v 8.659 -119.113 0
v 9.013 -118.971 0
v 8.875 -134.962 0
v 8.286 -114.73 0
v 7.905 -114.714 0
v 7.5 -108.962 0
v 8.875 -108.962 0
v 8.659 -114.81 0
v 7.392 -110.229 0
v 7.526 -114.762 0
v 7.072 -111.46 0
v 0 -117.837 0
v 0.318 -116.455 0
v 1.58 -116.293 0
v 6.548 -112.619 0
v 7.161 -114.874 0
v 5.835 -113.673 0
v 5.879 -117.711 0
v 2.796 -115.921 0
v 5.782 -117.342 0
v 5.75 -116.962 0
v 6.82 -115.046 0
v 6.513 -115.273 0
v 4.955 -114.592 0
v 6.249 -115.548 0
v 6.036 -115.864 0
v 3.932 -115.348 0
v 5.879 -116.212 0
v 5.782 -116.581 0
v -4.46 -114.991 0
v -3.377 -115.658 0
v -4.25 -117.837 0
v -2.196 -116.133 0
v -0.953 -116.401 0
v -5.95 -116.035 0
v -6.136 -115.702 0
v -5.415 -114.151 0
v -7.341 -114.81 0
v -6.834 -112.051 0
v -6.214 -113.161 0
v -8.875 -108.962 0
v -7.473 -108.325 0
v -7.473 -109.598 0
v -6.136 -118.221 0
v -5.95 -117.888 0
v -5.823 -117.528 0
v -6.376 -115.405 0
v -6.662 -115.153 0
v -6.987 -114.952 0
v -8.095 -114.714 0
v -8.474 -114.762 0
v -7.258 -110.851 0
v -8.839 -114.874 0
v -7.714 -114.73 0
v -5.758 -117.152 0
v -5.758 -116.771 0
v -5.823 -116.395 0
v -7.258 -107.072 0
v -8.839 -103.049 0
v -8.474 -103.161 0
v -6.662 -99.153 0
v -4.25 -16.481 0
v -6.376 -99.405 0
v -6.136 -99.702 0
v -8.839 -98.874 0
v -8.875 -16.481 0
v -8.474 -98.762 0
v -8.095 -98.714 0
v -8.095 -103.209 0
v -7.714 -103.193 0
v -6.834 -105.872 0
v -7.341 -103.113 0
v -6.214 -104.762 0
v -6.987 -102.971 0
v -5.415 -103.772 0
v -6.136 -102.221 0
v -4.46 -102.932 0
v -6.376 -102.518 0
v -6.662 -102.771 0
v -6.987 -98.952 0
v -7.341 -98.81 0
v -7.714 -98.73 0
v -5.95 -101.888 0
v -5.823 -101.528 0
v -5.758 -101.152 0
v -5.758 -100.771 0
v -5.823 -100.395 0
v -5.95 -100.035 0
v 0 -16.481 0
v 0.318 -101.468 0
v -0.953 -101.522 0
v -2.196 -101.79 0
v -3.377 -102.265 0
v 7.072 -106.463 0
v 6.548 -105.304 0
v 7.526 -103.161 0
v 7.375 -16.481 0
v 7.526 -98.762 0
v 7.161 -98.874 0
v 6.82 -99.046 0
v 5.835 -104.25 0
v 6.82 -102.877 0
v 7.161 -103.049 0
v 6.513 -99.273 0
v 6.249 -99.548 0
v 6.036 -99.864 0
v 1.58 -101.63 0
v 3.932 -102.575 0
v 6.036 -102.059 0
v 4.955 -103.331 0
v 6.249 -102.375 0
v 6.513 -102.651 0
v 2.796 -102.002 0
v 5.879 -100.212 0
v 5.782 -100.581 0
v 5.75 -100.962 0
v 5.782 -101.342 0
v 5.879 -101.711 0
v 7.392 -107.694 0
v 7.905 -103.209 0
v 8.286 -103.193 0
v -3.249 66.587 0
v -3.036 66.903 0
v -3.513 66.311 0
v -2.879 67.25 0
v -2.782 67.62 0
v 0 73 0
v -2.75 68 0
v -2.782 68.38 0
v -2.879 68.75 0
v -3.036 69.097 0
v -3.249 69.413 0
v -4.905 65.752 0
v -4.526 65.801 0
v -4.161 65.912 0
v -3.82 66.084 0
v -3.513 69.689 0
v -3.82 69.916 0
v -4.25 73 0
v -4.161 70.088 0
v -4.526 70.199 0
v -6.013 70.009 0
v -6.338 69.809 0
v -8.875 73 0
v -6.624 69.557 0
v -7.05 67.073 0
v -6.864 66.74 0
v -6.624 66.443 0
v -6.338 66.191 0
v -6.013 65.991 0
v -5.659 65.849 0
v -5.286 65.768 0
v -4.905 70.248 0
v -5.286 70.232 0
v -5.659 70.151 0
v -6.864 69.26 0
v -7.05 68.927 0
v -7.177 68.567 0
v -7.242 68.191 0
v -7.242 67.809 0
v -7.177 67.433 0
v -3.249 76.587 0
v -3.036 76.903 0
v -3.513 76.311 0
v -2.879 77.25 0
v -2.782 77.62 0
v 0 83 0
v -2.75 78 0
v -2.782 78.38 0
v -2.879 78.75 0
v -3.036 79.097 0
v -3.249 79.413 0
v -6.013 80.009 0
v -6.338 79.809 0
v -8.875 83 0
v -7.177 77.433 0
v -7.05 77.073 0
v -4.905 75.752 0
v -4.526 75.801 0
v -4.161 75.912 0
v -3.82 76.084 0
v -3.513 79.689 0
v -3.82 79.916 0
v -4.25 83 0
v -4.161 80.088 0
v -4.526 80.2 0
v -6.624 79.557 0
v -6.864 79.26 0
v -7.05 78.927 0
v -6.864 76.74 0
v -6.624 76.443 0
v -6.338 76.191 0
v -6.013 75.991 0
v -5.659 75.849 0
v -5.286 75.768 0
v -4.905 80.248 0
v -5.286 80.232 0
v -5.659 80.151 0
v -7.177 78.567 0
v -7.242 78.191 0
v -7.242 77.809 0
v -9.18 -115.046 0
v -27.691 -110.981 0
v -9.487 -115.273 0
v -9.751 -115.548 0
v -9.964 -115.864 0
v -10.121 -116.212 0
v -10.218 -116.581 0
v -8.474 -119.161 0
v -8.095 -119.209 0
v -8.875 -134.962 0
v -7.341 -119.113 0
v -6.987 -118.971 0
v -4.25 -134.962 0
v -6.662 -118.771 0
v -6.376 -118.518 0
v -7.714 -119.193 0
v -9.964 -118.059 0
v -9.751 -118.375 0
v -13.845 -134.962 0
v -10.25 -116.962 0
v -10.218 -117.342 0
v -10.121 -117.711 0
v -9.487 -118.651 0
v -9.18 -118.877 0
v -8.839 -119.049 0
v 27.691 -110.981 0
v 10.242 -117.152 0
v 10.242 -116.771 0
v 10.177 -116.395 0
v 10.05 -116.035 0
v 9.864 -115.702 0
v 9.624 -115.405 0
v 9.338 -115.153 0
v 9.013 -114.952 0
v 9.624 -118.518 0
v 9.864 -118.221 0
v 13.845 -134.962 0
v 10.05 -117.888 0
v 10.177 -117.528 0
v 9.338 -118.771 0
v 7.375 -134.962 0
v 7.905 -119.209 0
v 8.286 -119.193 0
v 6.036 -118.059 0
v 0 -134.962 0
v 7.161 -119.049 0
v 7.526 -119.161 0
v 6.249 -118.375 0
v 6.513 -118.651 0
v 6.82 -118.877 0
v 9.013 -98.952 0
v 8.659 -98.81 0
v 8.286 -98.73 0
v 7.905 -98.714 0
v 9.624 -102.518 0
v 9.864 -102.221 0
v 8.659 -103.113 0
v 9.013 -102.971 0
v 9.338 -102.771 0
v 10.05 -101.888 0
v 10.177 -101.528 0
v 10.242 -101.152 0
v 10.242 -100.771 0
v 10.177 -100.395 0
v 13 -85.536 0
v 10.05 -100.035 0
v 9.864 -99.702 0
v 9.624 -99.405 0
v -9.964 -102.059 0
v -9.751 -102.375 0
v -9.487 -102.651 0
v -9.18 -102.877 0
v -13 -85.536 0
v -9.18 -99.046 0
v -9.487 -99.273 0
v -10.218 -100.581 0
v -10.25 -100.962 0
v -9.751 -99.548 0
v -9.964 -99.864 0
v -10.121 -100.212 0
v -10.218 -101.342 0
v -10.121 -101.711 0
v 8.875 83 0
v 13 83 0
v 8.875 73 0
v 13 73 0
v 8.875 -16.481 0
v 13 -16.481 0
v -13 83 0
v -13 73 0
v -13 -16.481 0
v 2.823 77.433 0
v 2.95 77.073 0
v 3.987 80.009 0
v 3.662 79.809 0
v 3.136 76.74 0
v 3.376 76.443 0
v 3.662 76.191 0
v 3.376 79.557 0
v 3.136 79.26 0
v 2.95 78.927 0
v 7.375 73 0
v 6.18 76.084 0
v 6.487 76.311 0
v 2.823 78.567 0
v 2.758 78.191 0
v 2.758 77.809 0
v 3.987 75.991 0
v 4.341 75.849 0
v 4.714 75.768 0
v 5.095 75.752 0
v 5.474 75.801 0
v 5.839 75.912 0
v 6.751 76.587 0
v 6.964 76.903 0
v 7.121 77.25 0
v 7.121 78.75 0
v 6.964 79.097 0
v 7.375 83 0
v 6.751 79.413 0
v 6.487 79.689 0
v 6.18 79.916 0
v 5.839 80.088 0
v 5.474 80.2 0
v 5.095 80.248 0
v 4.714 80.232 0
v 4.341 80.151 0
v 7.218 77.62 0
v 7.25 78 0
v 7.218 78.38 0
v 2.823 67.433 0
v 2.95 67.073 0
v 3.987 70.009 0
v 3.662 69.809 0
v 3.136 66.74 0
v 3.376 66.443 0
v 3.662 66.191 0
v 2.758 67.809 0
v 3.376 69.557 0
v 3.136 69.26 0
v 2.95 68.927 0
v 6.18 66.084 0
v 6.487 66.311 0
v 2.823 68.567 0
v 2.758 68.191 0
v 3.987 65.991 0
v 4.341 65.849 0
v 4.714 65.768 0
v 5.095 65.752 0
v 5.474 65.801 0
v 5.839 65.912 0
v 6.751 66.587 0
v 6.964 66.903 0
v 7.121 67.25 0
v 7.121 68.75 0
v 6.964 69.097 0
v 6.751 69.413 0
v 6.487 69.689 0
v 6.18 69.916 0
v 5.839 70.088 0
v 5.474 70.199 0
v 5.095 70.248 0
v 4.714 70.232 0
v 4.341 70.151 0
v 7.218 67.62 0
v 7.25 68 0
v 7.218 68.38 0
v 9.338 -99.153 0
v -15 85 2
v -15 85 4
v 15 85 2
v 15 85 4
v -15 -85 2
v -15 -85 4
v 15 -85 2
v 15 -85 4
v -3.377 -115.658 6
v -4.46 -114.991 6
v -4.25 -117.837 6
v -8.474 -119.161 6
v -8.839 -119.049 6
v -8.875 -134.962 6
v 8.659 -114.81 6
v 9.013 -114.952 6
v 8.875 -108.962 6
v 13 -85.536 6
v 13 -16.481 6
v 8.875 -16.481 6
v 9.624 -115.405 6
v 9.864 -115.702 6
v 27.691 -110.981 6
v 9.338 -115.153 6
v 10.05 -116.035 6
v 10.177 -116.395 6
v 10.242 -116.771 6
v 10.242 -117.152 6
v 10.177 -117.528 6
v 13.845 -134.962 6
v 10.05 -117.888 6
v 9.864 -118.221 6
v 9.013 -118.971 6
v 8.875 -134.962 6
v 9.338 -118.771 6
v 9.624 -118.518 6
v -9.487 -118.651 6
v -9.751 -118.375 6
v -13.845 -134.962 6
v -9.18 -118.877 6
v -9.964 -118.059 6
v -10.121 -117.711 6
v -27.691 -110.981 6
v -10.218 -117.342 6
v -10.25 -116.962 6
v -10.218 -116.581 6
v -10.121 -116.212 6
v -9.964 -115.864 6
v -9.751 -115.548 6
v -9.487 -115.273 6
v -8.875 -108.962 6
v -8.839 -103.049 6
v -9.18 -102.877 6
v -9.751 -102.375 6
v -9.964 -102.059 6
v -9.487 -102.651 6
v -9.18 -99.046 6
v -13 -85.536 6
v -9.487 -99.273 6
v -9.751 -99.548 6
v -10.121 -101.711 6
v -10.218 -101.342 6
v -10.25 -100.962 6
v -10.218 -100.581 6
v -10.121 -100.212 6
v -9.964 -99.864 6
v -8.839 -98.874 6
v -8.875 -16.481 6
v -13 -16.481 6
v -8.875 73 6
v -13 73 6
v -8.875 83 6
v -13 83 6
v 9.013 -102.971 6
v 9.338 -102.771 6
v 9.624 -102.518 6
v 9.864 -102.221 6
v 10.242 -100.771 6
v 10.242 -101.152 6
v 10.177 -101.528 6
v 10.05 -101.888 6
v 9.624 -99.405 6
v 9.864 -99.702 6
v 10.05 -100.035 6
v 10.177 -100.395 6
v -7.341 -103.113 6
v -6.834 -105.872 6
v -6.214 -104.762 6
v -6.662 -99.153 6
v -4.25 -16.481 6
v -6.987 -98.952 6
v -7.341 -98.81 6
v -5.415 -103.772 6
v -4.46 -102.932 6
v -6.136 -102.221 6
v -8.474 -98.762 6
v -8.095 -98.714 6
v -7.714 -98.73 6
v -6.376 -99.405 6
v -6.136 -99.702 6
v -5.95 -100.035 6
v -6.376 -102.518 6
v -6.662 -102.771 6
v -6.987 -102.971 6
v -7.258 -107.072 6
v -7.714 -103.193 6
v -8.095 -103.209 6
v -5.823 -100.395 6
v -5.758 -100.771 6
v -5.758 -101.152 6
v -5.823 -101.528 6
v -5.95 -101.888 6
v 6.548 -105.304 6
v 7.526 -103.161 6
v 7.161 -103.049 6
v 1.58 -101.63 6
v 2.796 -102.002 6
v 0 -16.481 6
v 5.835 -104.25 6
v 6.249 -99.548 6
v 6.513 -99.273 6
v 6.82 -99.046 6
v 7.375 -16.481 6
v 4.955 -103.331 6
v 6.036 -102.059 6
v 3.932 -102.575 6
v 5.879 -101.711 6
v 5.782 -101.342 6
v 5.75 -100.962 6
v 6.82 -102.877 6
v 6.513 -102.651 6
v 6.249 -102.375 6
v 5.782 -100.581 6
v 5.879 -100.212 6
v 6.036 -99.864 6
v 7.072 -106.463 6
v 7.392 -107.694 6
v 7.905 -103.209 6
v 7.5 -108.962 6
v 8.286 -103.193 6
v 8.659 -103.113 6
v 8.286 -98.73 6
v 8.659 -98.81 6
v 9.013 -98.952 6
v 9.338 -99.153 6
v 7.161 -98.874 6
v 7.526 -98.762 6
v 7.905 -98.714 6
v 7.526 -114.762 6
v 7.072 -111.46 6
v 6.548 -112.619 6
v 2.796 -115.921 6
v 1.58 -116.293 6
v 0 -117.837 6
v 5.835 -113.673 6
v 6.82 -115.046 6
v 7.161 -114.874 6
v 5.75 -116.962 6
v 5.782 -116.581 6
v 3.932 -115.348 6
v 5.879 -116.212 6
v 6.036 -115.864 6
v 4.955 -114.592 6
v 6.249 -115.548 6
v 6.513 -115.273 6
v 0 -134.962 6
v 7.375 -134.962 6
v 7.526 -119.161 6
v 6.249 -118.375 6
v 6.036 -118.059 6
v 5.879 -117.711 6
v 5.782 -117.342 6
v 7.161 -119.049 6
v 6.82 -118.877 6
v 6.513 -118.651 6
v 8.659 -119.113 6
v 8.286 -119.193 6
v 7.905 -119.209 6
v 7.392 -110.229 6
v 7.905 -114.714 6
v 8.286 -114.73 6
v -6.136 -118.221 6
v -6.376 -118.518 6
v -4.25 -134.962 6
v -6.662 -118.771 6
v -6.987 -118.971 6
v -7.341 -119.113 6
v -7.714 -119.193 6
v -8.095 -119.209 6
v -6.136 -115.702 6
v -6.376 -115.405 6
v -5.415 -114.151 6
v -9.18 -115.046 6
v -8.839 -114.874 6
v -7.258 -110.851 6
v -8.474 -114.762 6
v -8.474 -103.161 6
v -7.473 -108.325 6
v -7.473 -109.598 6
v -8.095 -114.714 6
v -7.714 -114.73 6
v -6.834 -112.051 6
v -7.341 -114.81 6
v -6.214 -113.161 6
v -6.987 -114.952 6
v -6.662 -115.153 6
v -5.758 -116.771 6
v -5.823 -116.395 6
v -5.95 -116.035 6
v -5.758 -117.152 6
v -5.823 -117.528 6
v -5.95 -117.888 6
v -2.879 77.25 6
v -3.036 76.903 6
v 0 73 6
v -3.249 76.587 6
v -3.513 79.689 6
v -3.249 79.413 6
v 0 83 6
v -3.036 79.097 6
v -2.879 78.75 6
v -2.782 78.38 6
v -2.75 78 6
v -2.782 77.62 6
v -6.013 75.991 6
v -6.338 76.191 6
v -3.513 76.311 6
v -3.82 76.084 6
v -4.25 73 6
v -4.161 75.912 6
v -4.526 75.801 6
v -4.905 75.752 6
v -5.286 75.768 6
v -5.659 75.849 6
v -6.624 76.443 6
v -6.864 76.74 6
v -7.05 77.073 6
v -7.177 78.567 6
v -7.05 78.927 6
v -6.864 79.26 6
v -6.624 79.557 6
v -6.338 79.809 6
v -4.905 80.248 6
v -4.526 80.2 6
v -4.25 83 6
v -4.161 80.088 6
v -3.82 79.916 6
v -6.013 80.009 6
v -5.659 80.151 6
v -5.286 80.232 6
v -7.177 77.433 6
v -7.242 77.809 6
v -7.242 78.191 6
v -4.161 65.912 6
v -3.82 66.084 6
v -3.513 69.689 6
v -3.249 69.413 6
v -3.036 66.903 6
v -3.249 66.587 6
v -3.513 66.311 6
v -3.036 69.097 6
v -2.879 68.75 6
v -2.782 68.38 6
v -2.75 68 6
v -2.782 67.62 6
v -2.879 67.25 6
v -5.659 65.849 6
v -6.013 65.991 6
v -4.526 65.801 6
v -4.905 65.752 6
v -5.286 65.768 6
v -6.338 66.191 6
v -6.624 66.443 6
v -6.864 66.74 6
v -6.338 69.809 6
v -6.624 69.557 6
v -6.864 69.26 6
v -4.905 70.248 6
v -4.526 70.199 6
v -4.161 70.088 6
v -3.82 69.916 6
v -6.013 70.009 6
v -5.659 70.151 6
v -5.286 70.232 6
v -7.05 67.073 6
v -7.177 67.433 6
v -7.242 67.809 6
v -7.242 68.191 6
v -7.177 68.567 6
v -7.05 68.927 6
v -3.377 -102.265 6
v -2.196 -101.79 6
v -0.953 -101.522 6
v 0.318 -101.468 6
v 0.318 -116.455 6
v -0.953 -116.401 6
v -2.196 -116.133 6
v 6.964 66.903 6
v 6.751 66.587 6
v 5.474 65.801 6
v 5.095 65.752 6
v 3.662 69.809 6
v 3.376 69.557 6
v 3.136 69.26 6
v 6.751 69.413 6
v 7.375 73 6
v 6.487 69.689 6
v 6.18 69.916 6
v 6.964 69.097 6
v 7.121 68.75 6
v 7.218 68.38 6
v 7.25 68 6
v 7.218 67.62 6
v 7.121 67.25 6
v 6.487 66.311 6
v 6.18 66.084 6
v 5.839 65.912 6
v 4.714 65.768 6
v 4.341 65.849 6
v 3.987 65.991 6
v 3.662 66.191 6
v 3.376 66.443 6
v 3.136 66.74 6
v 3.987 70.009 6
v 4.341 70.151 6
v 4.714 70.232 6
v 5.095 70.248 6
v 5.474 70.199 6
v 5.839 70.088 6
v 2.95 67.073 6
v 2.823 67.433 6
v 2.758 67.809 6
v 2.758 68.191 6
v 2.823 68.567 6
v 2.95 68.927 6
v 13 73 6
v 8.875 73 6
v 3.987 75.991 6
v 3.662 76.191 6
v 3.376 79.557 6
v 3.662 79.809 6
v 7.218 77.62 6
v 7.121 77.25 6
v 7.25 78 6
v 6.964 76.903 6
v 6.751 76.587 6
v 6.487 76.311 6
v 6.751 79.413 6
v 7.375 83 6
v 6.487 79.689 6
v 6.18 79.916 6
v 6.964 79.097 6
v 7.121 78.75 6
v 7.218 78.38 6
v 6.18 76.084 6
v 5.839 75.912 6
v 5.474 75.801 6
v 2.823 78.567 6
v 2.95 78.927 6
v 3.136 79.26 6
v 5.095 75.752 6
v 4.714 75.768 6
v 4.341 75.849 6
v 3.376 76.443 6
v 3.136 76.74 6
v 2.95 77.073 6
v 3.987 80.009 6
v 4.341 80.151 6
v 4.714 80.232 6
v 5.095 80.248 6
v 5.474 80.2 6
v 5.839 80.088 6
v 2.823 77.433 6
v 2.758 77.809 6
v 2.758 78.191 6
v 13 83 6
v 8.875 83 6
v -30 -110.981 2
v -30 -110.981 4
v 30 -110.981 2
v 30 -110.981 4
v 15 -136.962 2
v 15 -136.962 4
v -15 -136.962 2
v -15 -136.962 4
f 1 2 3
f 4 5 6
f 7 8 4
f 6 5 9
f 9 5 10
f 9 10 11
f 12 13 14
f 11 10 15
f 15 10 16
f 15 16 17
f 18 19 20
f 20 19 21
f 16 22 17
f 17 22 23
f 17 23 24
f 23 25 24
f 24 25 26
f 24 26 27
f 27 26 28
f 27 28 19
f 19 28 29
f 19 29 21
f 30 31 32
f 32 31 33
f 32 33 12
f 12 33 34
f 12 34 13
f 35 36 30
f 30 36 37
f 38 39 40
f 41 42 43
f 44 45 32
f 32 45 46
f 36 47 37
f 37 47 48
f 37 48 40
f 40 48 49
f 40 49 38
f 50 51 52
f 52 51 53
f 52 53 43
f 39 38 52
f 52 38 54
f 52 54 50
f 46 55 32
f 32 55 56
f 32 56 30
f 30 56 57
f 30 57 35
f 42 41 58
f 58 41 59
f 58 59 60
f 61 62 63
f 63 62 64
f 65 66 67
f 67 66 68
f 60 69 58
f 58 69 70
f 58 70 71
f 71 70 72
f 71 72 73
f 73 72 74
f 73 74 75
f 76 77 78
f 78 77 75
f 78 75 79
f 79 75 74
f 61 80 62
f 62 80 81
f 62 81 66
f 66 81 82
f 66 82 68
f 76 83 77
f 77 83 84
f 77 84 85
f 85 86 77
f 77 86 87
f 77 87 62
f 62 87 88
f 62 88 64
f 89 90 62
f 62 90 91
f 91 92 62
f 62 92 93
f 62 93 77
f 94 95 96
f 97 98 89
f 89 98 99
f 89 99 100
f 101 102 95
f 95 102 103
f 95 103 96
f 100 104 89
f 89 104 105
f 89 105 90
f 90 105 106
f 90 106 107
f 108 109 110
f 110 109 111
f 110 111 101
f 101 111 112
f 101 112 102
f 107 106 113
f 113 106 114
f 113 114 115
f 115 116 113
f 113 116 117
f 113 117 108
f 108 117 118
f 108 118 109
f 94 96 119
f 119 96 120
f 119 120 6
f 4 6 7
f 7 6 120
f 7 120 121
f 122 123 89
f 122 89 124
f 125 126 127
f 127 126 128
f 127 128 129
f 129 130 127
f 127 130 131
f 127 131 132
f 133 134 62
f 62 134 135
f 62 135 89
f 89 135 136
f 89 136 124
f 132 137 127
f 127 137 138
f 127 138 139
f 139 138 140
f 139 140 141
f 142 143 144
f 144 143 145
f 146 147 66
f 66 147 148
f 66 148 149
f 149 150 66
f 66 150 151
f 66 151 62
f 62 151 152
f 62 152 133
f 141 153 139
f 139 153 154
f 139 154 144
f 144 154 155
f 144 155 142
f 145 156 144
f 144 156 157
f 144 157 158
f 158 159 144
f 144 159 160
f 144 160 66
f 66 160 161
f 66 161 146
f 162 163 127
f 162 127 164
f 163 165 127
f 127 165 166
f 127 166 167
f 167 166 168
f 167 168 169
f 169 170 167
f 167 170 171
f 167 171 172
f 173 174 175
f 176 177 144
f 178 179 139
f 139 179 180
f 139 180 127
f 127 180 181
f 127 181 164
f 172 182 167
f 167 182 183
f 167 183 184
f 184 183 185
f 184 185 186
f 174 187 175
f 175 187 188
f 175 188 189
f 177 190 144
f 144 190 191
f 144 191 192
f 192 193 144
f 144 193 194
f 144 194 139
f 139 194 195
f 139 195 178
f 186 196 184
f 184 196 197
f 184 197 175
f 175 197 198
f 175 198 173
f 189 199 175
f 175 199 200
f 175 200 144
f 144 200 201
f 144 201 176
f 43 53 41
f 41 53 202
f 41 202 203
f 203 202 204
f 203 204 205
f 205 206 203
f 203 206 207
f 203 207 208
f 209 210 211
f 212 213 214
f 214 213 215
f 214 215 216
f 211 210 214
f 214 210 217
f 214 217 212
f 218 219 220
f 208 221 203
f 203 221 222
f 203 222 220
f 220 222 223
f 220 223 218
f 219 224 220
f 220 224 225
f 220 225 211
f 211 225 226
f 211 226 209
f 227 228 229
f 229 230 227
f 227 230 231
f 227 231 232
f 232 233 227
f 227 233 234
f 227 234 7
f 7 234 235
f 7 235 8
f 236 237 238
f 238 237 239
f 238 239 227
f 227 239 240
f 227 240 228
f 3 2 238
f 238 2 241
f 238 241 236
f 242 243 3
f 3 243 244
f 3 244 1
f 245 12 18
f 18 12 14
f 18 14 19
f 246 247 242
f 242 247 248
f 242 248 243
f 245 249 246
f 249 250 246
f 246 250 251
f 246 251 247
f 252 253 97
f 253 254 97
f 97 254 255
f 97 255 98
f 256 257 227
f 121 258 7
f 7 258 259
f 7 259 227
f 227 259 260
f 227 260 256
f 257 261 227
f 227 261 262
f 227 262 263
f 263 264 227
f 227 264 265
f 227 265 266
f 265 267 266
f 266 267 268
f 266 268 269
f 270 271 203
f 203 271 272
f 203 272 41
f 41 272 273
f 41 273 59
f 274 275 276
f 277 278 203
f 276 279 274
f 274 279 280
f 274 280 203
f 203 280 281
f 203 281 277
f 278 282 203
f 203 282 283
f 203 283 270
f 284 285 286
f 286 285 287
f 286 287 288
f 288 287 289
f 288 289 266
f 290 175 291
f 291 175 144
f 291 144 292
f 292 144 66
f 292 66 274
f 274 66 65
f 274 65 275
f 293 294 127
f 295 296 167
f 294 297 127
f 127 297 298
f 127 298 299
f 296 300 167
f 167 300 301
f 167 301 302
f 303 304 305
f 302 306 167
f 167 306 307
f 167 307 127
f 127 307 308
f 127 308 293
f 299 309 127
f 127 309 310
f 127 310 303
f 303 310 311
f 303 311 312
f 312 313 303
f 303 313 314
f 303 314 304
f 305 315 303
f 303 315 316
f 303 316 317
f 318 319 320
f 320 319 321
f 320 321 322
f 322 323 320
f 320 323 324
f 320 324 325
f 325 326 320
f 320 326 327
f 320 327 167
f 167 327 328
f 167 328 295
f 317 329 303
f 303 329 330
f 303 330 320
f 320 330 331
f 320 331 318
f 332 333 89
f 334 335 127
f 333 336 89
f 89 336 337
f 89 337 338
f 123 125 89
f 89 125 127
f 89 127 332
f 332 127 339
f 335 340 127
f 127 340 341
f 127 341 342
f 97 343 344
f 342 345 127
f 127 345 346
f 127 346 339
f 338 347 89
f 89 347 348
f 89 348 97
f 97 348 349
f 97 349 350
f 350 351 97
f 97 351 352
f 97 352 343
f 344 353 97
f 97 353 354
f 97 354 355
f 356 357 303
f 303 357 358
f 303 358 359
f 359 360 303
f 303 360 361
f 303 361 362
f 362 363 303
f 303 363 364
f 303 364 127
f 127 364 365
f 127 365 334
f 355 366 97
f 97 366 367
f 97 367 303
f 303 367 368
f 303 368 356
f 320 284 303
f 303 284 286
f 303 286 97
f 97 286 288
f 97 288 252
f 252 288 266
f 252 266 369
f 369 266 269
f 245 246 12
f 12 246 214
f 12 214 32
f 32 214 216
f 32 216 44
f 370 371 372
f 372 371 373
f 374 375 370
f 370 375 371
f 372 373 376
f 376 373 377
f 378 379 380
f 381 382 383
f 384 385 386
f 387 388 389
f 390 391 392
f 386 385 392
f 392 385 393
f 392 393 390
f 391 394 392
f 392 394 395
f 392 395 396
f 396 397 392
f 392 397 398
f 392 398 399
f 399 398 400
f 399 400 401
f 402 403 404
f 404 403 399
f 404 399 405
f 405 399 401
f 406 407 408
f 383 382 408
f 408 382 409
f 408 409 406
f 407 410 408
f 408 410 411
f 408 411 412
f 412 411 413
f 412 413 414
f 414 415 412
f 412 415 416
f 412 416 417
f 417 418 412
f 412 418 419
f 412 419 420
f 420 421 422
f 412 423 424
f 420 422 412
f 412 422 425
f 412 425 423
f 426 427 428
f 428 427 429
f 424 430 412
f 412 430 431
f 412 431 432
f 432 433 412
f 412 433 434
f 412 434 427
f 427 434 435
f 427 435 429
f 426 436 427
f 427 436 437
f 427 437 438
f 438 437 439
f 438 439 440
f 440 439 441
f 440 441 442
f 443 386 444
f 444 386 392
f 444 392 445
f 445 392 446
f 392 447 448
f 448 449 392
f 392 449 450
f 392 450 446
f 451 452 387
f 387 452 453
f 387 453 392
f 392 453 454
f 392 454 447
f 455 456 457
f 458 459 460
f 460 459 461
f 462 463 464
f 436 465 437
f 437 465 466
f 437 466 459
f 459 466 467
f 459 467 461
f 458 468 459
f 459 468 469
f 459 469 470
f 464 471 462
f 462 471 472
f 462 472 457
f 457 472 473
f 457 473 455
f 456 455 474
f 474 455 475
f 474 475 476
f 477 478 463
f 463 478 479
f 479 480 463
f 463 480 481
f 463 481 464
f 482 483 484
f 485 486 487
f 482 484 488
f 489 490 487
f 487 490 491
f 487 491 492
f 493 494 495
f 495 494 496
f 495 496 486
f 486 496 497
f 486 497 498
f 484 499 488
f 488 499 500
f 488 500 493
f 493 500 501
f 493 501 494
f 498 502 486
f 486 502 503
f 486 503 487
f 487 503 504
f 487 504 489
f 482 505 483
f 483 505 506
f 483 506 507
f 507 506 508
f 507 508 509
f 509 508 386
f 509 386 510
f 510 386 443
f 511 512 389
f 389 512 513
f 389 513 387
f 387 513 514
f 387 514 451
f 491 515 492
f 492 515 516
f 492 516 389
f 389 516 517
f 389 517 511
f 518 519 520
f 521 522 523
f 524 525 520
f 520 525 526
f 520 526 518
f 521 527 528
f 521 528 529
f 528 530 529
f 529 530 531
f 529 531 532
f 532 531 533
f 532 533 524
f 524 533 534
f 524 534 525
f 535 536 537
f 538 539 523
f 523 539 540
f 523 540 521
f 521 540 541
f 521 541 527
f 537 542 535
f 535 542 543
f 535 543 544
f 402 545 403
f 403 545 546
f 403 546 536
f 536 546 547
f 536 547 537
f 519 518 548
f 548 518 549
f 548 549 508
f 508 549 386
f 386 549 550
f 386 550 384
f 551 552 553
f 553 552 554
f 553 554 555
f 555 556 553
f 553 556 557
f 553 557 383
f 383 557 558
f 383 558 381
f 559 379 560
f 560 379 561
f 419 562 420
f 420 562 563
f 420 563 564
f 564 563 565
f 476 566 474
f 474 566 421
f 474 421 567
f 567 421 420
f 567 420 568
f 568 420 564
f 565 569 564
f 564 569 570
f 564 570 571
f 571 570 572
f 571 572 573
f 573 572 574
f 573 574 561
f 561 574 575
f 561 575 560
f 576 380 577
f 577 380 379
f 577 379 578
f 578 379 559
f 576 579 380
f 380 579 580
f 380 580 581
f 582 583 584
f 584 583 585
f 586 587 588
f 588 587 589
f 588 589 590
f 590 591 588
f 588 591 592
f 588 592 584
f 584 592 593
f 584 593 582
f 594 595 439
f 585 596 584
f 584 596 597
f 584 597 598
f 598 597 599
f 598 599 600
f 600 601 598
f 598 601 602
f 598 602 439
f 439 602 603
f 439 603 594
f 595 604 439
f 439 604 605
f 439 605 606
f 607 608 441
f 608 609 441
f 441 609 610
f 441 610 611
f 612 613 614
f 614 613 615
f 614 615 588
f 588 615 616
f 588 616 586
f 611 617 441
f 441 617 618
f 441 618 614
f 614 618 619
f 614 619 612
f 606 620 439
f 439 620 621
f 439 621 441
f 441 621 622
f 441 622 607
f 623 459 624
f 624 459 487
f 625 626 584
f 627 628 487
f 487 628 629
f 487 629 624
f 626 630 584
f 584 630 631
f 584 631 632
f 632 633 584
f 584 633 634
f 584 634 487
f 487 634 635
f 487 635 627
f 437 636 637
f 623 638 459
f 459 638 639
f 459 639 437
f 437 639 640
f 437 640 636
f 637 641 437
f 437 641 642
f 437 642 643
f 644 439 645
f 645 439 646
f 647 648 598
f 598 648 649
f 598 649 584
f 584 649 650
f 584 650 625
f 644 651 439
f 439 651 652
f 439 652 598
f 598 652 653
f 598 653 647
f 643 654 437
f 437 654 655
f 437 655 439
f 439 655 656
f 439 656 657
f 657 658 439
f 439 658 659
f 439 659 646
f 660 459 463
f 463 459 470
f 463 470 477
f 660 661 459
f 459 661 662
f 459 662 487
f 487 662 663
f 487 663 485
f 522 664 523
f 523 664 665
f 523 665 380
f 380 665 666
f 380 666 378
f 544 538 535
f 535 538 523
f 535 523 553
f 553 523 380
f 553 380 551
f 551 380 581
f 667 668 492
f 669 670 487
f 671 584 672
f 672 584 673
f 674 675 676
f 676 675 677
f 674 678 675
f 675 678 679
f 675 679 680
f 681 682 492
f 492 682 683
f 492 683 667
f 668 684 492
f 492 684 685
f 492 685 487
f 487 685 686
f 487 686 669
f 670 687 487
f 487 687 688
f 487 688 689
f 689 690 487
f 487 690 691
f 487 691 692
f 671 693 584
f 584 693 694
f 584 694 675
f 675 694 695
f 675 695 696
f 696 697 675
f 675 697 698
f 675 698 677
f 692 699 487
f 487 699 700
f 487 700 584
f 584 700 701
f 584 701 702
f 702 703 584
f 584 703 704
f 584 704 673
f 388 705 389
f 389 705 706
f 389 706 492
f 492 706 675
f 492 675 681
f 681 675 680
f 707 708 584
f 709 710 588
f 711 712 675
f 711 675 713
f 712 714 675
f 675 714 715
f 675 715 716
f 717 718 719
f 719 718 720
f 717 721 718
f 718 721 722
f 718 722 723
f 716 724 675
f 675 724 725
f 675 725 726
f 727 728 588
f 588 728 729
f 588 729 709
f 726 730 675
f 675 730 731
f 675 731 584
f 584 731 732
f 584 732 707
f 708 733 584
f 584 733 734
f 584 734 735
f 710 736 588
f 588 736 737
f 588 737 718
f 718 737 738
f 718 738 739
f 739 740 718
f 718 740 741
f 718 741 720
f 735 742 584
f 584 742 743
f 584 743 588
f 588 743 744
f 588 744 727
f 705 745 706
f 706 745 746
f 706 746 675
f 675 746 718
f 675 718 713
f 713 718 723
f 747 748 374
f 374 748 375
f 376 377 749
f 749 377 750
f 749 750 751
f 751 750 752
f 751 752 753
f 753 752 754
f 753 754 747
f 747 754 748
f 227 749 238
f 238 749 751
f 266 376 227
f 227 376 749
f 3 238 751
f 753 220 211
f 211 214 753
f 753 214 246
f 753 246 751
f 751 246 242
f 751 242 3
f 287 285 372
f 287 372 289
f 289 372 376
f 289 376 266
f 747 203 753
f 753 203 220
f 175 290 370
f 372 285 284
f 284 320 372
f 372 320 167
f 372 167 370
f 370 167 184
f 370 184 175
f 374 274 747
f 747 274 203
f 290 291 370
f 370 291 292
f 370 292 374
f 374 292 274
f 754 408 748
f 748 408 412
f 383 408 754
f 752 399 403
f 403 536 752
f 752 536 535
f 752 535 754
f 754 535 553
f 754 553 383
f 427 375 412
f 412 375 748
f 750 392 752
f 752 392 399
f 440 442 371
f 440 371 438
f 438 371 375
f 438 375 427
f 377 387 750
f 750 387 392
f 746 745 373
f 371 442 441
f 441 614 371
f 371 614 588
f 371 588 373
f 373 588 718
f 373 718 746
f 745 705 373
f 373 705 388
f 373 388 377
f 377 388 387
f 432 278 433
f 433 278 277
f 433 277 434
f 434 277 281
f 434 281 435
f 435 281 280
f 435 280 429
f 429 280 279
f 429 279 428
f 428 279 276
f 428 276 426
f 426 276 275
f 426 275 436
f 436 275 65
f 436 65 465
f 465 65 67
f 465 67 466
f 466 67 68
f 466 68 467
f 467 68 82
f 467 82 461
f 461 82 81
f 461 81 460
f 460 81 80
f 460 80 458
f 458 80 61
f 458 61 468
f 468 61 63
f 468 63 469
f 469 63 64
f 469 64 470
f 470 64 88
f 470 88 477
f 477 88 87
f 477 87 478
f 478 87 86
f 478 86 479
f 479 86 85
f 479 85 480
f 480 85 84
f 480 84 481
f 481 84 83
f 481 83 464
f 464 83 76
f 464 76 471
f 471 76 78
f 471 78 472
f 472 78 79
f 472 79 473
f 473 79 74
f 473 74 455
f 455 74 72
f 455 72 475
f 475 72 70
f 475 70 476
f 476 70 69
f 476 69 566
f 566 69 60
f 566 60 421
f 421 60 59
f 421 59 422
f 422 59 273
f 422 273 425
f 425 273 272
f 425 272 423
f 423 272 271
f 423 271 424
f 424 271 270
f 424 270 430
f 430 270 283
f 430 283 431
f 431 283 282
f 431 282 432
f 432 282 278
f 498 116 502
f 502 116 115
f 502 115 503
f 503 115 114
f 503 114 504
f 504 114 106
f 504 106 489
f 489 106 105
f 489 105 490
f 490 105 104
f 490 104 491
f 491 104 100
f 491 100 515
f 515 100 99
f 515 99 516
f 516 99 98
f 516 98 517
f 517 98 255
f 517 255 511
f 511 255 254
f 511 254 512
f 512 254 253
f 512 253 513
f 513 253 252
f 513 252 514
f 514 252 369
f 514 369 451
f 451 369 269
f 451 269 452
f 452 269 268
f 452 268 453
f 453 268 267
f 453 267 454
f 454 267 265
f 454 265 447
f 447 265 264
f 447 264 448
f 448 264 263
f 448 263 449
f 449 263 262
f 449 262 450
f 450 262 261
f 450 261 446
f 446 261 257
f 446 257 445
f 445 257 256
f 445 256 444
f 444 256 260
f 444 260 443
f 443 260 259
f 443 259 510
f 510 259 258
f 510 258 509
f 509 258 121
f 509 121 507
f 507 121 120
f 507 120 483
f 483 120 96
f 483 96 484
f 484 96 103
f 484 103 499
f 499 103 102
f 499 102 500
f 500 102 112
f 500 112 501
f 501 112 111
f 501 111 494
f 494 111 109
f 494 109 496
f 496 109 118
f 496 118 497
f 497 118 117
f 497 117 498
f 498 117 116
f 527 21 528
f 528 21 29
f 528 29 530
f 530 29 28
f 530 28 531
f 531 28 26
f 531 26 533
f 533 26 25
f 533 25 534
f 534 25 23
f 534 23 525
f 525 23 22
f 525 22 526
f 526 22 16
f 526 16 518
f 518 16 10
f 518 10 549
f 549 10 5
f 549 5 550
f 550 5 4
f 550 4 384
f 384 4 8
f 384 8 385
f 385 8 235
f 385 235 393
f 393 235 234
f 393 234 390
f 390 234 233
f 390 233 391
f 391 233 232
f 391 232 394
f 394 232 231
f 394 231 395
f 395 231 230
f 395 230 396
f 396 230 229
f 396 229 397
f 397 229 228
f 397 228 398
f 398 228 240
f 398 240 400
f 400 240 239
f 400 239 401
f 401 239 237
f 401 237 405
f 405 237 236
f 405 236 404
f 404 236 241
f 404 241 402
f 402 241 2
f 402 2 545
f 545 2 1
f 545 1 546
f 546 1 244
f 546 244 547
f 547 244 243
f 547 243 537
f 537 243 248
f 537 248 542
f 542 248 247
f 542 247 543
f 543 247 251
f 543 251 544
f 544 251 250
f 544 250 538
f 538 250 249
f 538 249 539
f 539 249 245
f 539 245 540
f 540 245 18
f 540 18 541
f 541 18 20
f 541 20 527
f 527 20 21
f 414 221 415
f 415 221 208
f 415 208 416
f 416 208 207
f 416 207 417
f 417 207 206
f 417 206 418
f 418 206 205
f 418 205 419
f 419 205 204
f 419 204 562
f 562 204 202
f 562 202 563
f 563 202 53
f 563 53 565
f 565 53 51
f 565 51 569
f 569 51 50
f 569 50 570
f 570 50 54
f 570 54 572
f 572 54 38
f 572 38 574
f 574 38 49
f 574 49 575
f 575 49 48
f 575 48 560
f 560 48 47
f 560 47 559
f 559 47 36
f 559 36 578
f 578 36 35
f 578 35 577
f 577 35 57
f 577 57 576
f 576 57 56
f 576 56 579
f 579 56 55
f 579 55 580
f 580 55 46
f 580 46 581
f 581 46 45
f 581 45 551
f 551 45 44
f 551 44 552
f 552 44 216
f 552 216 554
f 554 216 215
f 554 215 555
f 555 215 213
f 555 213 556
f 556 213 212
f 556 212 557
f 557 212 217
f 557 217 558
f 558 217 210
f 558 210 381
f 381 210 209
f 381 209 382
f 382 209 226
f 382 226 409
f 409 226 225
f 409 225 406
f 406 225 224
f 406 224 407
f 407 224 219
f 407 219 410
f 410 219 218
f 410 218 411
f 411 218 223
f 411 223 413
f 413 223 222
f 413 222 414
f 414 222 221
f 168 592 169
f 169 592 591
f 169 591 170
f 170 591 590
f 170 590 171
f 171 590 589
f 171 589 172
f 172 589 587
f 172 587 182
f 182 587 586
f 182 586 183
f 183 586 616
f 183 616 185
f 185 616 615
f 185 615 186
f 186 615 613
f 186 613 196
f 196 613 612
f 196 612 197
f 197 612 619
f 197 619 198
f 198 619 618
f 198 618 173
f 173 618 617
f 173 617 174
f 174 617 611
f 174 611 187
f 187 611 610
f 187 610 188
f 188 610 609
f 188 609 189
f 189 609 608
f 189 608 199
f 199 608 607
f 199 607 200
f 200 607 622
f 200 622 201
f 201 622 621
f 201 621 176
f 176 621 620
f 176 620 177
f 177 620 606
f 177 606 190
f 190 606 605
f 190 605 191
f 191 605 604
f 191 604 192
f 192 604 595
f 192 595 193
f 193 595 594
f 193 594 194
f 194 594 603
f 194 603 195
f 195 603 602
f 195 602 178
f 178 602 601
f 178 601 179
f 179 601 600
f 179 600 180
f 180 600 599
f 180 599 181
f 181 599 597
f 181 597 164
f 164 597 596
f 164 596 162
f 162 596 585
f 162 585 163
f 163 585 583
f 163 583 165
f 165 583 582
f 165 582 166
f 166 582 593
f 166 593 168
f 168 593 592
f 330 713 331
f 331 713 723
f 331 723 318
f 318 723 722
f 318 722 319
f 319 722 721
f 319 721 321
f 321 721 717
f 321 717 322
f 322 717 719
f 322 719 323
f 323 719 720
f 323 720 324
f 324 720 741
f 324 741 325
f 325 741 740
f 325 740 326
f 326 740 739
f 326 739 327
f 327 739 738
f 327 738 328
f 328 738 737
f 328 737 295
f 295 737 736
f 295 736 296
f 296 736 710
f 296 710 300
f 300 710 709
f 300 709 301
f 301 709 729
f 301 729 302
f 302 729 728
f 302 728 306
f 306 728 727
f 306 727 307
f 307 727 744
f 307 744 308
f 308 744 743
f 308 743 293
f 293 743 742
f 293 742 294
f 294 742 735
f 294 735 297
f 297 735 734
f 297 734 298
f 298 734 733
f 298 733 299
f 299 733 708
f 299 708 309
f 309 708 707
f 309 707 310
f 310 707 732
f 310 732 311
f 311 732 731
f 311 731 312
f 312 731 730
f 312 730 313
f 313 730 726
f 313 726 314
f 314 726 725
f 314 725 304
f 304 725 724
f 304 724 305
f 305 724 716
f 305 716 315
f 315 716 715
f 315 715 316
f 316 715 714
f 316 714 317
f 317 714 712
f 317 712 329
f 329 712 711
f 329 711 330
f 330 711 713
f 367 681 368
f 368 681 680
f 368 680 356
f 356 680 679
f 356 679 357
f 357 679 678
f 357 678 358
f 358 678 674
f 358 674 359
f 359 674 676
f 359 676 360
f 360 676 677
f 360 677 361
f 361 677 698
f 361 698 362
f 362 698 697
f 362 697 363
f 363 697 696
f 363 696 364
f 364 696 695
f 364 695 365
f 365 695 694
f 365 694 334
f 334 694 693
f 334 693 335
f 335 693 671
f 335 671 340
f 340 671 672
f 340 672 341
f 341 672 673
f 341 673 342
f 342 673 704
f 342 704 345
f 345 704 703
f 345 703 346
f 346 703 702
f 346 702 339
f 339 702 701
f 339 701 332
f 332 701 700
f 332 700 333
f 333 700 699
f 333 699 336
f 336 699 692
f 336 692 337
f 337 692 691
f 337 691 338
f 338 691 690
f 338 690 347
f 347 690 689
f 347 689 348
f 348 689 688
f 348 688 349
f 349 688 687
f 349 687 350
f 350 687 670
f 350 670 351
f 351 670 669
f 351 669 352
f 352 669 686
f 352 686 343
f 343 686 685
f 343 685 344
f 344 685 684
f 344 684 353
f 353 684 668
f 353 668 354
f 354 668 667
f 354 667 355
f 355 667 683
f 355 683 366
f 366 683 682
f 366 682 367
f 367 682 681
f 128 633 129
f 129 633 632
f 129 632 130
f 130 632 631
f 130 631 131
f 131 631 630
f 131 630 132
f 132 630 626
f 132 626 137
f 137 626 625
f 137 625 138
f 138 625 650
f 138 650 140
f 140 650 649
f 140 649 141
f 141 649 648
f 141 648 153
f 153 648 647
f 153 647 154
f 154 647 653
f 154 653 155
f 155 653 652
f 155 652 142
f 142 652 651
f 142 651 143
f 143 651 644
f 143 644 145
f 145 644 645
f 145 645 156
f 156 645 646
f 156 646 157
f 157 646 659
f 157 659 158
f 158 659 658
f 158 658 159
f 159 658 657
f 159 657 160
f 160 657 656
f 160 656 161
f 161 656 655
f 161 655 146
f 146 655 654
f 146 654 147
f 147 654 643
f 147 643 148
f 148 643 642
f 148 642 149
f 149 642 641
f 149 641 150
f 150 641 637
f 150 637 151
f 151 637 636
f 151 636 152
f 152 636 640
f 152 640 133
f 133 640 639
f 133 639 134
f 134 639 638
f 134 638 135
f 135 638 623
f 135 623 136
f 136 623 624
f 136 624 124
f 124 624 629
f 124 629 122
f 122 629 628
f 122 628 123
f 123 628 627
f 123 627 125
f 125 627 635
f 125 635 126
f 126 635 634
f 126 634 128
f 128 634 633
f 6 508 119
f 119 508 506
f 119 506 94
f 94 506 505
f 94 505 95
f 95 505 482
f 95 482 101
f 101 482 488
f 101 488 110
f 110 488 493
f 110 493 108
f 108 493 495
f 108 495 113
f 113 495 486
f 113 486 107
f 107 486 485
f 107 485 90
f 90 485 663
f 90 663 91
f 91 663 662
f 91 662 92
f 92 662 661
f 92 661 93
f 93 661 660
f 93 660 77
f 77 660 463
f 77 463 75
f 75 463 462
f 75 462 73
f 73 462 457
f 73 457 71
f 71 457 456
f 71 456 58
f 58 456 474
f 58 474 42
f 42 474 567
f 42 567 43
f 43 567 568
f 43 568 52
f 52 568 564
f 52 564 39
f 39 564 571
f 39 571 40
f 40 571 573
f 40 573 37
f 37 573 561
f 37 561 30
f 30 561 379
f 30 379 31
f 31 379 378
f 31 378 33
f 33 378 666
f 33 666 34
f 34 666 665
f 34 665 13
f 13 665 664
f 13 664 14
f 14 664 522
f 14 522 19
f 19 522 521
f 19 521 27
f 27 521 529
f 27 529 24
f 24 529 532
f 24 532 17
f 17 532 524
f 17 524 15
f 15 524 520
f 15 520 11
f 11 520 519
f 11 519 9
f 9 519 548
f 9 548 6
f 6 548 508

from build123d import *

# Parameters (mm, degrees)
SKETCH2_W           = 170
SKETCH2_H           = 30
BOSS_EXTRUDE2_DEPTH = 6
BOSS_EXTRUDE4_DEPTH = 6
CHAMFER1_SIZE       = 2
HOLE6_D             = 4.5
HOLE4_D             = 4.5
HOLE7_D             = 15


with BuildPart() as part:
    # Sketch2 → Boss-Extrude2 (new body)
    with BuildSketch(Plane(origin=(0, 0, 0), x_dir=(0, 1, 0), z_dir=(0, 0, 1))):
        Rectangle(SKETCH2_W, SKETCH2_H)
    extrude(amount=BOSS_EXTRUDE2_DEPTH)

    # Sketch8 → Boss-Extrude4 (add)
    with BuildSketch(Plane.XY.offset(6)):
        Polygon((-30, -110.980762114), (-15, -136.961524227), (15, -136.961524227), (30, -110.980762114), (15, -85), (-15, -85), align=None)
    extrude(amount=-BOSS_EXTRUDE4_DEPTH)

    # Chamfer1
    chamfer1_edges = [part.edges().sort_by_distance(p)[0] for p in [
        (-22.5, -97.990381057, 0),
        (22.5, -97.990381057, 0),
        (22.5, -123.97114317, 0),
        (0, -136.961524227, 0),
        (-22.5, -123.97114317, 0),
        (-22.5, -97.990381057, 6),
        (15, 0, 6),
        (-22.5, -123.97114317, 6),
        (0, -136.961524227, 6),
        (22.5, -123.97114317, 6),
        (22.5, -97.990381057, 6),
        (0, 85, 6),
        (15, 0, 0),
        (-15, 0, 0),
        (0, 85, 0),
        (-15, 0, 6),
    ]]
    chamfer(chamfer1_edges, length=CHAMFER1_SIZE)

    # Hole6 (through all)
    with Locations(Plane(origin=(0, 0, 0), x_dir=(-1, 0, 0), z_dir=(0, 0, -1))):
        with Locations((8, -116.961524227), (-8, -116.961524227), (-8, -100.961524227), (8, -100.961524227)):
            Hole(HOLE6_D / 2)

    # Hole4 (through all)
    with Locations(Plane.XY.offset(6)):
        with Locations((-5, 68), (5, 68), (5, 78), (-5, 78)):
            Hole(HOLE4_D / 2)

    # Hole7 (through all)
    with Locations(Plane(origin=(0, -108.961524227, 6), x_dir=(1, 0, 0), z_dir=(0, 0, 1))):
        with Locations((0, 0)):
            Hole(HOLE7_D / 2)


solid = part.part
